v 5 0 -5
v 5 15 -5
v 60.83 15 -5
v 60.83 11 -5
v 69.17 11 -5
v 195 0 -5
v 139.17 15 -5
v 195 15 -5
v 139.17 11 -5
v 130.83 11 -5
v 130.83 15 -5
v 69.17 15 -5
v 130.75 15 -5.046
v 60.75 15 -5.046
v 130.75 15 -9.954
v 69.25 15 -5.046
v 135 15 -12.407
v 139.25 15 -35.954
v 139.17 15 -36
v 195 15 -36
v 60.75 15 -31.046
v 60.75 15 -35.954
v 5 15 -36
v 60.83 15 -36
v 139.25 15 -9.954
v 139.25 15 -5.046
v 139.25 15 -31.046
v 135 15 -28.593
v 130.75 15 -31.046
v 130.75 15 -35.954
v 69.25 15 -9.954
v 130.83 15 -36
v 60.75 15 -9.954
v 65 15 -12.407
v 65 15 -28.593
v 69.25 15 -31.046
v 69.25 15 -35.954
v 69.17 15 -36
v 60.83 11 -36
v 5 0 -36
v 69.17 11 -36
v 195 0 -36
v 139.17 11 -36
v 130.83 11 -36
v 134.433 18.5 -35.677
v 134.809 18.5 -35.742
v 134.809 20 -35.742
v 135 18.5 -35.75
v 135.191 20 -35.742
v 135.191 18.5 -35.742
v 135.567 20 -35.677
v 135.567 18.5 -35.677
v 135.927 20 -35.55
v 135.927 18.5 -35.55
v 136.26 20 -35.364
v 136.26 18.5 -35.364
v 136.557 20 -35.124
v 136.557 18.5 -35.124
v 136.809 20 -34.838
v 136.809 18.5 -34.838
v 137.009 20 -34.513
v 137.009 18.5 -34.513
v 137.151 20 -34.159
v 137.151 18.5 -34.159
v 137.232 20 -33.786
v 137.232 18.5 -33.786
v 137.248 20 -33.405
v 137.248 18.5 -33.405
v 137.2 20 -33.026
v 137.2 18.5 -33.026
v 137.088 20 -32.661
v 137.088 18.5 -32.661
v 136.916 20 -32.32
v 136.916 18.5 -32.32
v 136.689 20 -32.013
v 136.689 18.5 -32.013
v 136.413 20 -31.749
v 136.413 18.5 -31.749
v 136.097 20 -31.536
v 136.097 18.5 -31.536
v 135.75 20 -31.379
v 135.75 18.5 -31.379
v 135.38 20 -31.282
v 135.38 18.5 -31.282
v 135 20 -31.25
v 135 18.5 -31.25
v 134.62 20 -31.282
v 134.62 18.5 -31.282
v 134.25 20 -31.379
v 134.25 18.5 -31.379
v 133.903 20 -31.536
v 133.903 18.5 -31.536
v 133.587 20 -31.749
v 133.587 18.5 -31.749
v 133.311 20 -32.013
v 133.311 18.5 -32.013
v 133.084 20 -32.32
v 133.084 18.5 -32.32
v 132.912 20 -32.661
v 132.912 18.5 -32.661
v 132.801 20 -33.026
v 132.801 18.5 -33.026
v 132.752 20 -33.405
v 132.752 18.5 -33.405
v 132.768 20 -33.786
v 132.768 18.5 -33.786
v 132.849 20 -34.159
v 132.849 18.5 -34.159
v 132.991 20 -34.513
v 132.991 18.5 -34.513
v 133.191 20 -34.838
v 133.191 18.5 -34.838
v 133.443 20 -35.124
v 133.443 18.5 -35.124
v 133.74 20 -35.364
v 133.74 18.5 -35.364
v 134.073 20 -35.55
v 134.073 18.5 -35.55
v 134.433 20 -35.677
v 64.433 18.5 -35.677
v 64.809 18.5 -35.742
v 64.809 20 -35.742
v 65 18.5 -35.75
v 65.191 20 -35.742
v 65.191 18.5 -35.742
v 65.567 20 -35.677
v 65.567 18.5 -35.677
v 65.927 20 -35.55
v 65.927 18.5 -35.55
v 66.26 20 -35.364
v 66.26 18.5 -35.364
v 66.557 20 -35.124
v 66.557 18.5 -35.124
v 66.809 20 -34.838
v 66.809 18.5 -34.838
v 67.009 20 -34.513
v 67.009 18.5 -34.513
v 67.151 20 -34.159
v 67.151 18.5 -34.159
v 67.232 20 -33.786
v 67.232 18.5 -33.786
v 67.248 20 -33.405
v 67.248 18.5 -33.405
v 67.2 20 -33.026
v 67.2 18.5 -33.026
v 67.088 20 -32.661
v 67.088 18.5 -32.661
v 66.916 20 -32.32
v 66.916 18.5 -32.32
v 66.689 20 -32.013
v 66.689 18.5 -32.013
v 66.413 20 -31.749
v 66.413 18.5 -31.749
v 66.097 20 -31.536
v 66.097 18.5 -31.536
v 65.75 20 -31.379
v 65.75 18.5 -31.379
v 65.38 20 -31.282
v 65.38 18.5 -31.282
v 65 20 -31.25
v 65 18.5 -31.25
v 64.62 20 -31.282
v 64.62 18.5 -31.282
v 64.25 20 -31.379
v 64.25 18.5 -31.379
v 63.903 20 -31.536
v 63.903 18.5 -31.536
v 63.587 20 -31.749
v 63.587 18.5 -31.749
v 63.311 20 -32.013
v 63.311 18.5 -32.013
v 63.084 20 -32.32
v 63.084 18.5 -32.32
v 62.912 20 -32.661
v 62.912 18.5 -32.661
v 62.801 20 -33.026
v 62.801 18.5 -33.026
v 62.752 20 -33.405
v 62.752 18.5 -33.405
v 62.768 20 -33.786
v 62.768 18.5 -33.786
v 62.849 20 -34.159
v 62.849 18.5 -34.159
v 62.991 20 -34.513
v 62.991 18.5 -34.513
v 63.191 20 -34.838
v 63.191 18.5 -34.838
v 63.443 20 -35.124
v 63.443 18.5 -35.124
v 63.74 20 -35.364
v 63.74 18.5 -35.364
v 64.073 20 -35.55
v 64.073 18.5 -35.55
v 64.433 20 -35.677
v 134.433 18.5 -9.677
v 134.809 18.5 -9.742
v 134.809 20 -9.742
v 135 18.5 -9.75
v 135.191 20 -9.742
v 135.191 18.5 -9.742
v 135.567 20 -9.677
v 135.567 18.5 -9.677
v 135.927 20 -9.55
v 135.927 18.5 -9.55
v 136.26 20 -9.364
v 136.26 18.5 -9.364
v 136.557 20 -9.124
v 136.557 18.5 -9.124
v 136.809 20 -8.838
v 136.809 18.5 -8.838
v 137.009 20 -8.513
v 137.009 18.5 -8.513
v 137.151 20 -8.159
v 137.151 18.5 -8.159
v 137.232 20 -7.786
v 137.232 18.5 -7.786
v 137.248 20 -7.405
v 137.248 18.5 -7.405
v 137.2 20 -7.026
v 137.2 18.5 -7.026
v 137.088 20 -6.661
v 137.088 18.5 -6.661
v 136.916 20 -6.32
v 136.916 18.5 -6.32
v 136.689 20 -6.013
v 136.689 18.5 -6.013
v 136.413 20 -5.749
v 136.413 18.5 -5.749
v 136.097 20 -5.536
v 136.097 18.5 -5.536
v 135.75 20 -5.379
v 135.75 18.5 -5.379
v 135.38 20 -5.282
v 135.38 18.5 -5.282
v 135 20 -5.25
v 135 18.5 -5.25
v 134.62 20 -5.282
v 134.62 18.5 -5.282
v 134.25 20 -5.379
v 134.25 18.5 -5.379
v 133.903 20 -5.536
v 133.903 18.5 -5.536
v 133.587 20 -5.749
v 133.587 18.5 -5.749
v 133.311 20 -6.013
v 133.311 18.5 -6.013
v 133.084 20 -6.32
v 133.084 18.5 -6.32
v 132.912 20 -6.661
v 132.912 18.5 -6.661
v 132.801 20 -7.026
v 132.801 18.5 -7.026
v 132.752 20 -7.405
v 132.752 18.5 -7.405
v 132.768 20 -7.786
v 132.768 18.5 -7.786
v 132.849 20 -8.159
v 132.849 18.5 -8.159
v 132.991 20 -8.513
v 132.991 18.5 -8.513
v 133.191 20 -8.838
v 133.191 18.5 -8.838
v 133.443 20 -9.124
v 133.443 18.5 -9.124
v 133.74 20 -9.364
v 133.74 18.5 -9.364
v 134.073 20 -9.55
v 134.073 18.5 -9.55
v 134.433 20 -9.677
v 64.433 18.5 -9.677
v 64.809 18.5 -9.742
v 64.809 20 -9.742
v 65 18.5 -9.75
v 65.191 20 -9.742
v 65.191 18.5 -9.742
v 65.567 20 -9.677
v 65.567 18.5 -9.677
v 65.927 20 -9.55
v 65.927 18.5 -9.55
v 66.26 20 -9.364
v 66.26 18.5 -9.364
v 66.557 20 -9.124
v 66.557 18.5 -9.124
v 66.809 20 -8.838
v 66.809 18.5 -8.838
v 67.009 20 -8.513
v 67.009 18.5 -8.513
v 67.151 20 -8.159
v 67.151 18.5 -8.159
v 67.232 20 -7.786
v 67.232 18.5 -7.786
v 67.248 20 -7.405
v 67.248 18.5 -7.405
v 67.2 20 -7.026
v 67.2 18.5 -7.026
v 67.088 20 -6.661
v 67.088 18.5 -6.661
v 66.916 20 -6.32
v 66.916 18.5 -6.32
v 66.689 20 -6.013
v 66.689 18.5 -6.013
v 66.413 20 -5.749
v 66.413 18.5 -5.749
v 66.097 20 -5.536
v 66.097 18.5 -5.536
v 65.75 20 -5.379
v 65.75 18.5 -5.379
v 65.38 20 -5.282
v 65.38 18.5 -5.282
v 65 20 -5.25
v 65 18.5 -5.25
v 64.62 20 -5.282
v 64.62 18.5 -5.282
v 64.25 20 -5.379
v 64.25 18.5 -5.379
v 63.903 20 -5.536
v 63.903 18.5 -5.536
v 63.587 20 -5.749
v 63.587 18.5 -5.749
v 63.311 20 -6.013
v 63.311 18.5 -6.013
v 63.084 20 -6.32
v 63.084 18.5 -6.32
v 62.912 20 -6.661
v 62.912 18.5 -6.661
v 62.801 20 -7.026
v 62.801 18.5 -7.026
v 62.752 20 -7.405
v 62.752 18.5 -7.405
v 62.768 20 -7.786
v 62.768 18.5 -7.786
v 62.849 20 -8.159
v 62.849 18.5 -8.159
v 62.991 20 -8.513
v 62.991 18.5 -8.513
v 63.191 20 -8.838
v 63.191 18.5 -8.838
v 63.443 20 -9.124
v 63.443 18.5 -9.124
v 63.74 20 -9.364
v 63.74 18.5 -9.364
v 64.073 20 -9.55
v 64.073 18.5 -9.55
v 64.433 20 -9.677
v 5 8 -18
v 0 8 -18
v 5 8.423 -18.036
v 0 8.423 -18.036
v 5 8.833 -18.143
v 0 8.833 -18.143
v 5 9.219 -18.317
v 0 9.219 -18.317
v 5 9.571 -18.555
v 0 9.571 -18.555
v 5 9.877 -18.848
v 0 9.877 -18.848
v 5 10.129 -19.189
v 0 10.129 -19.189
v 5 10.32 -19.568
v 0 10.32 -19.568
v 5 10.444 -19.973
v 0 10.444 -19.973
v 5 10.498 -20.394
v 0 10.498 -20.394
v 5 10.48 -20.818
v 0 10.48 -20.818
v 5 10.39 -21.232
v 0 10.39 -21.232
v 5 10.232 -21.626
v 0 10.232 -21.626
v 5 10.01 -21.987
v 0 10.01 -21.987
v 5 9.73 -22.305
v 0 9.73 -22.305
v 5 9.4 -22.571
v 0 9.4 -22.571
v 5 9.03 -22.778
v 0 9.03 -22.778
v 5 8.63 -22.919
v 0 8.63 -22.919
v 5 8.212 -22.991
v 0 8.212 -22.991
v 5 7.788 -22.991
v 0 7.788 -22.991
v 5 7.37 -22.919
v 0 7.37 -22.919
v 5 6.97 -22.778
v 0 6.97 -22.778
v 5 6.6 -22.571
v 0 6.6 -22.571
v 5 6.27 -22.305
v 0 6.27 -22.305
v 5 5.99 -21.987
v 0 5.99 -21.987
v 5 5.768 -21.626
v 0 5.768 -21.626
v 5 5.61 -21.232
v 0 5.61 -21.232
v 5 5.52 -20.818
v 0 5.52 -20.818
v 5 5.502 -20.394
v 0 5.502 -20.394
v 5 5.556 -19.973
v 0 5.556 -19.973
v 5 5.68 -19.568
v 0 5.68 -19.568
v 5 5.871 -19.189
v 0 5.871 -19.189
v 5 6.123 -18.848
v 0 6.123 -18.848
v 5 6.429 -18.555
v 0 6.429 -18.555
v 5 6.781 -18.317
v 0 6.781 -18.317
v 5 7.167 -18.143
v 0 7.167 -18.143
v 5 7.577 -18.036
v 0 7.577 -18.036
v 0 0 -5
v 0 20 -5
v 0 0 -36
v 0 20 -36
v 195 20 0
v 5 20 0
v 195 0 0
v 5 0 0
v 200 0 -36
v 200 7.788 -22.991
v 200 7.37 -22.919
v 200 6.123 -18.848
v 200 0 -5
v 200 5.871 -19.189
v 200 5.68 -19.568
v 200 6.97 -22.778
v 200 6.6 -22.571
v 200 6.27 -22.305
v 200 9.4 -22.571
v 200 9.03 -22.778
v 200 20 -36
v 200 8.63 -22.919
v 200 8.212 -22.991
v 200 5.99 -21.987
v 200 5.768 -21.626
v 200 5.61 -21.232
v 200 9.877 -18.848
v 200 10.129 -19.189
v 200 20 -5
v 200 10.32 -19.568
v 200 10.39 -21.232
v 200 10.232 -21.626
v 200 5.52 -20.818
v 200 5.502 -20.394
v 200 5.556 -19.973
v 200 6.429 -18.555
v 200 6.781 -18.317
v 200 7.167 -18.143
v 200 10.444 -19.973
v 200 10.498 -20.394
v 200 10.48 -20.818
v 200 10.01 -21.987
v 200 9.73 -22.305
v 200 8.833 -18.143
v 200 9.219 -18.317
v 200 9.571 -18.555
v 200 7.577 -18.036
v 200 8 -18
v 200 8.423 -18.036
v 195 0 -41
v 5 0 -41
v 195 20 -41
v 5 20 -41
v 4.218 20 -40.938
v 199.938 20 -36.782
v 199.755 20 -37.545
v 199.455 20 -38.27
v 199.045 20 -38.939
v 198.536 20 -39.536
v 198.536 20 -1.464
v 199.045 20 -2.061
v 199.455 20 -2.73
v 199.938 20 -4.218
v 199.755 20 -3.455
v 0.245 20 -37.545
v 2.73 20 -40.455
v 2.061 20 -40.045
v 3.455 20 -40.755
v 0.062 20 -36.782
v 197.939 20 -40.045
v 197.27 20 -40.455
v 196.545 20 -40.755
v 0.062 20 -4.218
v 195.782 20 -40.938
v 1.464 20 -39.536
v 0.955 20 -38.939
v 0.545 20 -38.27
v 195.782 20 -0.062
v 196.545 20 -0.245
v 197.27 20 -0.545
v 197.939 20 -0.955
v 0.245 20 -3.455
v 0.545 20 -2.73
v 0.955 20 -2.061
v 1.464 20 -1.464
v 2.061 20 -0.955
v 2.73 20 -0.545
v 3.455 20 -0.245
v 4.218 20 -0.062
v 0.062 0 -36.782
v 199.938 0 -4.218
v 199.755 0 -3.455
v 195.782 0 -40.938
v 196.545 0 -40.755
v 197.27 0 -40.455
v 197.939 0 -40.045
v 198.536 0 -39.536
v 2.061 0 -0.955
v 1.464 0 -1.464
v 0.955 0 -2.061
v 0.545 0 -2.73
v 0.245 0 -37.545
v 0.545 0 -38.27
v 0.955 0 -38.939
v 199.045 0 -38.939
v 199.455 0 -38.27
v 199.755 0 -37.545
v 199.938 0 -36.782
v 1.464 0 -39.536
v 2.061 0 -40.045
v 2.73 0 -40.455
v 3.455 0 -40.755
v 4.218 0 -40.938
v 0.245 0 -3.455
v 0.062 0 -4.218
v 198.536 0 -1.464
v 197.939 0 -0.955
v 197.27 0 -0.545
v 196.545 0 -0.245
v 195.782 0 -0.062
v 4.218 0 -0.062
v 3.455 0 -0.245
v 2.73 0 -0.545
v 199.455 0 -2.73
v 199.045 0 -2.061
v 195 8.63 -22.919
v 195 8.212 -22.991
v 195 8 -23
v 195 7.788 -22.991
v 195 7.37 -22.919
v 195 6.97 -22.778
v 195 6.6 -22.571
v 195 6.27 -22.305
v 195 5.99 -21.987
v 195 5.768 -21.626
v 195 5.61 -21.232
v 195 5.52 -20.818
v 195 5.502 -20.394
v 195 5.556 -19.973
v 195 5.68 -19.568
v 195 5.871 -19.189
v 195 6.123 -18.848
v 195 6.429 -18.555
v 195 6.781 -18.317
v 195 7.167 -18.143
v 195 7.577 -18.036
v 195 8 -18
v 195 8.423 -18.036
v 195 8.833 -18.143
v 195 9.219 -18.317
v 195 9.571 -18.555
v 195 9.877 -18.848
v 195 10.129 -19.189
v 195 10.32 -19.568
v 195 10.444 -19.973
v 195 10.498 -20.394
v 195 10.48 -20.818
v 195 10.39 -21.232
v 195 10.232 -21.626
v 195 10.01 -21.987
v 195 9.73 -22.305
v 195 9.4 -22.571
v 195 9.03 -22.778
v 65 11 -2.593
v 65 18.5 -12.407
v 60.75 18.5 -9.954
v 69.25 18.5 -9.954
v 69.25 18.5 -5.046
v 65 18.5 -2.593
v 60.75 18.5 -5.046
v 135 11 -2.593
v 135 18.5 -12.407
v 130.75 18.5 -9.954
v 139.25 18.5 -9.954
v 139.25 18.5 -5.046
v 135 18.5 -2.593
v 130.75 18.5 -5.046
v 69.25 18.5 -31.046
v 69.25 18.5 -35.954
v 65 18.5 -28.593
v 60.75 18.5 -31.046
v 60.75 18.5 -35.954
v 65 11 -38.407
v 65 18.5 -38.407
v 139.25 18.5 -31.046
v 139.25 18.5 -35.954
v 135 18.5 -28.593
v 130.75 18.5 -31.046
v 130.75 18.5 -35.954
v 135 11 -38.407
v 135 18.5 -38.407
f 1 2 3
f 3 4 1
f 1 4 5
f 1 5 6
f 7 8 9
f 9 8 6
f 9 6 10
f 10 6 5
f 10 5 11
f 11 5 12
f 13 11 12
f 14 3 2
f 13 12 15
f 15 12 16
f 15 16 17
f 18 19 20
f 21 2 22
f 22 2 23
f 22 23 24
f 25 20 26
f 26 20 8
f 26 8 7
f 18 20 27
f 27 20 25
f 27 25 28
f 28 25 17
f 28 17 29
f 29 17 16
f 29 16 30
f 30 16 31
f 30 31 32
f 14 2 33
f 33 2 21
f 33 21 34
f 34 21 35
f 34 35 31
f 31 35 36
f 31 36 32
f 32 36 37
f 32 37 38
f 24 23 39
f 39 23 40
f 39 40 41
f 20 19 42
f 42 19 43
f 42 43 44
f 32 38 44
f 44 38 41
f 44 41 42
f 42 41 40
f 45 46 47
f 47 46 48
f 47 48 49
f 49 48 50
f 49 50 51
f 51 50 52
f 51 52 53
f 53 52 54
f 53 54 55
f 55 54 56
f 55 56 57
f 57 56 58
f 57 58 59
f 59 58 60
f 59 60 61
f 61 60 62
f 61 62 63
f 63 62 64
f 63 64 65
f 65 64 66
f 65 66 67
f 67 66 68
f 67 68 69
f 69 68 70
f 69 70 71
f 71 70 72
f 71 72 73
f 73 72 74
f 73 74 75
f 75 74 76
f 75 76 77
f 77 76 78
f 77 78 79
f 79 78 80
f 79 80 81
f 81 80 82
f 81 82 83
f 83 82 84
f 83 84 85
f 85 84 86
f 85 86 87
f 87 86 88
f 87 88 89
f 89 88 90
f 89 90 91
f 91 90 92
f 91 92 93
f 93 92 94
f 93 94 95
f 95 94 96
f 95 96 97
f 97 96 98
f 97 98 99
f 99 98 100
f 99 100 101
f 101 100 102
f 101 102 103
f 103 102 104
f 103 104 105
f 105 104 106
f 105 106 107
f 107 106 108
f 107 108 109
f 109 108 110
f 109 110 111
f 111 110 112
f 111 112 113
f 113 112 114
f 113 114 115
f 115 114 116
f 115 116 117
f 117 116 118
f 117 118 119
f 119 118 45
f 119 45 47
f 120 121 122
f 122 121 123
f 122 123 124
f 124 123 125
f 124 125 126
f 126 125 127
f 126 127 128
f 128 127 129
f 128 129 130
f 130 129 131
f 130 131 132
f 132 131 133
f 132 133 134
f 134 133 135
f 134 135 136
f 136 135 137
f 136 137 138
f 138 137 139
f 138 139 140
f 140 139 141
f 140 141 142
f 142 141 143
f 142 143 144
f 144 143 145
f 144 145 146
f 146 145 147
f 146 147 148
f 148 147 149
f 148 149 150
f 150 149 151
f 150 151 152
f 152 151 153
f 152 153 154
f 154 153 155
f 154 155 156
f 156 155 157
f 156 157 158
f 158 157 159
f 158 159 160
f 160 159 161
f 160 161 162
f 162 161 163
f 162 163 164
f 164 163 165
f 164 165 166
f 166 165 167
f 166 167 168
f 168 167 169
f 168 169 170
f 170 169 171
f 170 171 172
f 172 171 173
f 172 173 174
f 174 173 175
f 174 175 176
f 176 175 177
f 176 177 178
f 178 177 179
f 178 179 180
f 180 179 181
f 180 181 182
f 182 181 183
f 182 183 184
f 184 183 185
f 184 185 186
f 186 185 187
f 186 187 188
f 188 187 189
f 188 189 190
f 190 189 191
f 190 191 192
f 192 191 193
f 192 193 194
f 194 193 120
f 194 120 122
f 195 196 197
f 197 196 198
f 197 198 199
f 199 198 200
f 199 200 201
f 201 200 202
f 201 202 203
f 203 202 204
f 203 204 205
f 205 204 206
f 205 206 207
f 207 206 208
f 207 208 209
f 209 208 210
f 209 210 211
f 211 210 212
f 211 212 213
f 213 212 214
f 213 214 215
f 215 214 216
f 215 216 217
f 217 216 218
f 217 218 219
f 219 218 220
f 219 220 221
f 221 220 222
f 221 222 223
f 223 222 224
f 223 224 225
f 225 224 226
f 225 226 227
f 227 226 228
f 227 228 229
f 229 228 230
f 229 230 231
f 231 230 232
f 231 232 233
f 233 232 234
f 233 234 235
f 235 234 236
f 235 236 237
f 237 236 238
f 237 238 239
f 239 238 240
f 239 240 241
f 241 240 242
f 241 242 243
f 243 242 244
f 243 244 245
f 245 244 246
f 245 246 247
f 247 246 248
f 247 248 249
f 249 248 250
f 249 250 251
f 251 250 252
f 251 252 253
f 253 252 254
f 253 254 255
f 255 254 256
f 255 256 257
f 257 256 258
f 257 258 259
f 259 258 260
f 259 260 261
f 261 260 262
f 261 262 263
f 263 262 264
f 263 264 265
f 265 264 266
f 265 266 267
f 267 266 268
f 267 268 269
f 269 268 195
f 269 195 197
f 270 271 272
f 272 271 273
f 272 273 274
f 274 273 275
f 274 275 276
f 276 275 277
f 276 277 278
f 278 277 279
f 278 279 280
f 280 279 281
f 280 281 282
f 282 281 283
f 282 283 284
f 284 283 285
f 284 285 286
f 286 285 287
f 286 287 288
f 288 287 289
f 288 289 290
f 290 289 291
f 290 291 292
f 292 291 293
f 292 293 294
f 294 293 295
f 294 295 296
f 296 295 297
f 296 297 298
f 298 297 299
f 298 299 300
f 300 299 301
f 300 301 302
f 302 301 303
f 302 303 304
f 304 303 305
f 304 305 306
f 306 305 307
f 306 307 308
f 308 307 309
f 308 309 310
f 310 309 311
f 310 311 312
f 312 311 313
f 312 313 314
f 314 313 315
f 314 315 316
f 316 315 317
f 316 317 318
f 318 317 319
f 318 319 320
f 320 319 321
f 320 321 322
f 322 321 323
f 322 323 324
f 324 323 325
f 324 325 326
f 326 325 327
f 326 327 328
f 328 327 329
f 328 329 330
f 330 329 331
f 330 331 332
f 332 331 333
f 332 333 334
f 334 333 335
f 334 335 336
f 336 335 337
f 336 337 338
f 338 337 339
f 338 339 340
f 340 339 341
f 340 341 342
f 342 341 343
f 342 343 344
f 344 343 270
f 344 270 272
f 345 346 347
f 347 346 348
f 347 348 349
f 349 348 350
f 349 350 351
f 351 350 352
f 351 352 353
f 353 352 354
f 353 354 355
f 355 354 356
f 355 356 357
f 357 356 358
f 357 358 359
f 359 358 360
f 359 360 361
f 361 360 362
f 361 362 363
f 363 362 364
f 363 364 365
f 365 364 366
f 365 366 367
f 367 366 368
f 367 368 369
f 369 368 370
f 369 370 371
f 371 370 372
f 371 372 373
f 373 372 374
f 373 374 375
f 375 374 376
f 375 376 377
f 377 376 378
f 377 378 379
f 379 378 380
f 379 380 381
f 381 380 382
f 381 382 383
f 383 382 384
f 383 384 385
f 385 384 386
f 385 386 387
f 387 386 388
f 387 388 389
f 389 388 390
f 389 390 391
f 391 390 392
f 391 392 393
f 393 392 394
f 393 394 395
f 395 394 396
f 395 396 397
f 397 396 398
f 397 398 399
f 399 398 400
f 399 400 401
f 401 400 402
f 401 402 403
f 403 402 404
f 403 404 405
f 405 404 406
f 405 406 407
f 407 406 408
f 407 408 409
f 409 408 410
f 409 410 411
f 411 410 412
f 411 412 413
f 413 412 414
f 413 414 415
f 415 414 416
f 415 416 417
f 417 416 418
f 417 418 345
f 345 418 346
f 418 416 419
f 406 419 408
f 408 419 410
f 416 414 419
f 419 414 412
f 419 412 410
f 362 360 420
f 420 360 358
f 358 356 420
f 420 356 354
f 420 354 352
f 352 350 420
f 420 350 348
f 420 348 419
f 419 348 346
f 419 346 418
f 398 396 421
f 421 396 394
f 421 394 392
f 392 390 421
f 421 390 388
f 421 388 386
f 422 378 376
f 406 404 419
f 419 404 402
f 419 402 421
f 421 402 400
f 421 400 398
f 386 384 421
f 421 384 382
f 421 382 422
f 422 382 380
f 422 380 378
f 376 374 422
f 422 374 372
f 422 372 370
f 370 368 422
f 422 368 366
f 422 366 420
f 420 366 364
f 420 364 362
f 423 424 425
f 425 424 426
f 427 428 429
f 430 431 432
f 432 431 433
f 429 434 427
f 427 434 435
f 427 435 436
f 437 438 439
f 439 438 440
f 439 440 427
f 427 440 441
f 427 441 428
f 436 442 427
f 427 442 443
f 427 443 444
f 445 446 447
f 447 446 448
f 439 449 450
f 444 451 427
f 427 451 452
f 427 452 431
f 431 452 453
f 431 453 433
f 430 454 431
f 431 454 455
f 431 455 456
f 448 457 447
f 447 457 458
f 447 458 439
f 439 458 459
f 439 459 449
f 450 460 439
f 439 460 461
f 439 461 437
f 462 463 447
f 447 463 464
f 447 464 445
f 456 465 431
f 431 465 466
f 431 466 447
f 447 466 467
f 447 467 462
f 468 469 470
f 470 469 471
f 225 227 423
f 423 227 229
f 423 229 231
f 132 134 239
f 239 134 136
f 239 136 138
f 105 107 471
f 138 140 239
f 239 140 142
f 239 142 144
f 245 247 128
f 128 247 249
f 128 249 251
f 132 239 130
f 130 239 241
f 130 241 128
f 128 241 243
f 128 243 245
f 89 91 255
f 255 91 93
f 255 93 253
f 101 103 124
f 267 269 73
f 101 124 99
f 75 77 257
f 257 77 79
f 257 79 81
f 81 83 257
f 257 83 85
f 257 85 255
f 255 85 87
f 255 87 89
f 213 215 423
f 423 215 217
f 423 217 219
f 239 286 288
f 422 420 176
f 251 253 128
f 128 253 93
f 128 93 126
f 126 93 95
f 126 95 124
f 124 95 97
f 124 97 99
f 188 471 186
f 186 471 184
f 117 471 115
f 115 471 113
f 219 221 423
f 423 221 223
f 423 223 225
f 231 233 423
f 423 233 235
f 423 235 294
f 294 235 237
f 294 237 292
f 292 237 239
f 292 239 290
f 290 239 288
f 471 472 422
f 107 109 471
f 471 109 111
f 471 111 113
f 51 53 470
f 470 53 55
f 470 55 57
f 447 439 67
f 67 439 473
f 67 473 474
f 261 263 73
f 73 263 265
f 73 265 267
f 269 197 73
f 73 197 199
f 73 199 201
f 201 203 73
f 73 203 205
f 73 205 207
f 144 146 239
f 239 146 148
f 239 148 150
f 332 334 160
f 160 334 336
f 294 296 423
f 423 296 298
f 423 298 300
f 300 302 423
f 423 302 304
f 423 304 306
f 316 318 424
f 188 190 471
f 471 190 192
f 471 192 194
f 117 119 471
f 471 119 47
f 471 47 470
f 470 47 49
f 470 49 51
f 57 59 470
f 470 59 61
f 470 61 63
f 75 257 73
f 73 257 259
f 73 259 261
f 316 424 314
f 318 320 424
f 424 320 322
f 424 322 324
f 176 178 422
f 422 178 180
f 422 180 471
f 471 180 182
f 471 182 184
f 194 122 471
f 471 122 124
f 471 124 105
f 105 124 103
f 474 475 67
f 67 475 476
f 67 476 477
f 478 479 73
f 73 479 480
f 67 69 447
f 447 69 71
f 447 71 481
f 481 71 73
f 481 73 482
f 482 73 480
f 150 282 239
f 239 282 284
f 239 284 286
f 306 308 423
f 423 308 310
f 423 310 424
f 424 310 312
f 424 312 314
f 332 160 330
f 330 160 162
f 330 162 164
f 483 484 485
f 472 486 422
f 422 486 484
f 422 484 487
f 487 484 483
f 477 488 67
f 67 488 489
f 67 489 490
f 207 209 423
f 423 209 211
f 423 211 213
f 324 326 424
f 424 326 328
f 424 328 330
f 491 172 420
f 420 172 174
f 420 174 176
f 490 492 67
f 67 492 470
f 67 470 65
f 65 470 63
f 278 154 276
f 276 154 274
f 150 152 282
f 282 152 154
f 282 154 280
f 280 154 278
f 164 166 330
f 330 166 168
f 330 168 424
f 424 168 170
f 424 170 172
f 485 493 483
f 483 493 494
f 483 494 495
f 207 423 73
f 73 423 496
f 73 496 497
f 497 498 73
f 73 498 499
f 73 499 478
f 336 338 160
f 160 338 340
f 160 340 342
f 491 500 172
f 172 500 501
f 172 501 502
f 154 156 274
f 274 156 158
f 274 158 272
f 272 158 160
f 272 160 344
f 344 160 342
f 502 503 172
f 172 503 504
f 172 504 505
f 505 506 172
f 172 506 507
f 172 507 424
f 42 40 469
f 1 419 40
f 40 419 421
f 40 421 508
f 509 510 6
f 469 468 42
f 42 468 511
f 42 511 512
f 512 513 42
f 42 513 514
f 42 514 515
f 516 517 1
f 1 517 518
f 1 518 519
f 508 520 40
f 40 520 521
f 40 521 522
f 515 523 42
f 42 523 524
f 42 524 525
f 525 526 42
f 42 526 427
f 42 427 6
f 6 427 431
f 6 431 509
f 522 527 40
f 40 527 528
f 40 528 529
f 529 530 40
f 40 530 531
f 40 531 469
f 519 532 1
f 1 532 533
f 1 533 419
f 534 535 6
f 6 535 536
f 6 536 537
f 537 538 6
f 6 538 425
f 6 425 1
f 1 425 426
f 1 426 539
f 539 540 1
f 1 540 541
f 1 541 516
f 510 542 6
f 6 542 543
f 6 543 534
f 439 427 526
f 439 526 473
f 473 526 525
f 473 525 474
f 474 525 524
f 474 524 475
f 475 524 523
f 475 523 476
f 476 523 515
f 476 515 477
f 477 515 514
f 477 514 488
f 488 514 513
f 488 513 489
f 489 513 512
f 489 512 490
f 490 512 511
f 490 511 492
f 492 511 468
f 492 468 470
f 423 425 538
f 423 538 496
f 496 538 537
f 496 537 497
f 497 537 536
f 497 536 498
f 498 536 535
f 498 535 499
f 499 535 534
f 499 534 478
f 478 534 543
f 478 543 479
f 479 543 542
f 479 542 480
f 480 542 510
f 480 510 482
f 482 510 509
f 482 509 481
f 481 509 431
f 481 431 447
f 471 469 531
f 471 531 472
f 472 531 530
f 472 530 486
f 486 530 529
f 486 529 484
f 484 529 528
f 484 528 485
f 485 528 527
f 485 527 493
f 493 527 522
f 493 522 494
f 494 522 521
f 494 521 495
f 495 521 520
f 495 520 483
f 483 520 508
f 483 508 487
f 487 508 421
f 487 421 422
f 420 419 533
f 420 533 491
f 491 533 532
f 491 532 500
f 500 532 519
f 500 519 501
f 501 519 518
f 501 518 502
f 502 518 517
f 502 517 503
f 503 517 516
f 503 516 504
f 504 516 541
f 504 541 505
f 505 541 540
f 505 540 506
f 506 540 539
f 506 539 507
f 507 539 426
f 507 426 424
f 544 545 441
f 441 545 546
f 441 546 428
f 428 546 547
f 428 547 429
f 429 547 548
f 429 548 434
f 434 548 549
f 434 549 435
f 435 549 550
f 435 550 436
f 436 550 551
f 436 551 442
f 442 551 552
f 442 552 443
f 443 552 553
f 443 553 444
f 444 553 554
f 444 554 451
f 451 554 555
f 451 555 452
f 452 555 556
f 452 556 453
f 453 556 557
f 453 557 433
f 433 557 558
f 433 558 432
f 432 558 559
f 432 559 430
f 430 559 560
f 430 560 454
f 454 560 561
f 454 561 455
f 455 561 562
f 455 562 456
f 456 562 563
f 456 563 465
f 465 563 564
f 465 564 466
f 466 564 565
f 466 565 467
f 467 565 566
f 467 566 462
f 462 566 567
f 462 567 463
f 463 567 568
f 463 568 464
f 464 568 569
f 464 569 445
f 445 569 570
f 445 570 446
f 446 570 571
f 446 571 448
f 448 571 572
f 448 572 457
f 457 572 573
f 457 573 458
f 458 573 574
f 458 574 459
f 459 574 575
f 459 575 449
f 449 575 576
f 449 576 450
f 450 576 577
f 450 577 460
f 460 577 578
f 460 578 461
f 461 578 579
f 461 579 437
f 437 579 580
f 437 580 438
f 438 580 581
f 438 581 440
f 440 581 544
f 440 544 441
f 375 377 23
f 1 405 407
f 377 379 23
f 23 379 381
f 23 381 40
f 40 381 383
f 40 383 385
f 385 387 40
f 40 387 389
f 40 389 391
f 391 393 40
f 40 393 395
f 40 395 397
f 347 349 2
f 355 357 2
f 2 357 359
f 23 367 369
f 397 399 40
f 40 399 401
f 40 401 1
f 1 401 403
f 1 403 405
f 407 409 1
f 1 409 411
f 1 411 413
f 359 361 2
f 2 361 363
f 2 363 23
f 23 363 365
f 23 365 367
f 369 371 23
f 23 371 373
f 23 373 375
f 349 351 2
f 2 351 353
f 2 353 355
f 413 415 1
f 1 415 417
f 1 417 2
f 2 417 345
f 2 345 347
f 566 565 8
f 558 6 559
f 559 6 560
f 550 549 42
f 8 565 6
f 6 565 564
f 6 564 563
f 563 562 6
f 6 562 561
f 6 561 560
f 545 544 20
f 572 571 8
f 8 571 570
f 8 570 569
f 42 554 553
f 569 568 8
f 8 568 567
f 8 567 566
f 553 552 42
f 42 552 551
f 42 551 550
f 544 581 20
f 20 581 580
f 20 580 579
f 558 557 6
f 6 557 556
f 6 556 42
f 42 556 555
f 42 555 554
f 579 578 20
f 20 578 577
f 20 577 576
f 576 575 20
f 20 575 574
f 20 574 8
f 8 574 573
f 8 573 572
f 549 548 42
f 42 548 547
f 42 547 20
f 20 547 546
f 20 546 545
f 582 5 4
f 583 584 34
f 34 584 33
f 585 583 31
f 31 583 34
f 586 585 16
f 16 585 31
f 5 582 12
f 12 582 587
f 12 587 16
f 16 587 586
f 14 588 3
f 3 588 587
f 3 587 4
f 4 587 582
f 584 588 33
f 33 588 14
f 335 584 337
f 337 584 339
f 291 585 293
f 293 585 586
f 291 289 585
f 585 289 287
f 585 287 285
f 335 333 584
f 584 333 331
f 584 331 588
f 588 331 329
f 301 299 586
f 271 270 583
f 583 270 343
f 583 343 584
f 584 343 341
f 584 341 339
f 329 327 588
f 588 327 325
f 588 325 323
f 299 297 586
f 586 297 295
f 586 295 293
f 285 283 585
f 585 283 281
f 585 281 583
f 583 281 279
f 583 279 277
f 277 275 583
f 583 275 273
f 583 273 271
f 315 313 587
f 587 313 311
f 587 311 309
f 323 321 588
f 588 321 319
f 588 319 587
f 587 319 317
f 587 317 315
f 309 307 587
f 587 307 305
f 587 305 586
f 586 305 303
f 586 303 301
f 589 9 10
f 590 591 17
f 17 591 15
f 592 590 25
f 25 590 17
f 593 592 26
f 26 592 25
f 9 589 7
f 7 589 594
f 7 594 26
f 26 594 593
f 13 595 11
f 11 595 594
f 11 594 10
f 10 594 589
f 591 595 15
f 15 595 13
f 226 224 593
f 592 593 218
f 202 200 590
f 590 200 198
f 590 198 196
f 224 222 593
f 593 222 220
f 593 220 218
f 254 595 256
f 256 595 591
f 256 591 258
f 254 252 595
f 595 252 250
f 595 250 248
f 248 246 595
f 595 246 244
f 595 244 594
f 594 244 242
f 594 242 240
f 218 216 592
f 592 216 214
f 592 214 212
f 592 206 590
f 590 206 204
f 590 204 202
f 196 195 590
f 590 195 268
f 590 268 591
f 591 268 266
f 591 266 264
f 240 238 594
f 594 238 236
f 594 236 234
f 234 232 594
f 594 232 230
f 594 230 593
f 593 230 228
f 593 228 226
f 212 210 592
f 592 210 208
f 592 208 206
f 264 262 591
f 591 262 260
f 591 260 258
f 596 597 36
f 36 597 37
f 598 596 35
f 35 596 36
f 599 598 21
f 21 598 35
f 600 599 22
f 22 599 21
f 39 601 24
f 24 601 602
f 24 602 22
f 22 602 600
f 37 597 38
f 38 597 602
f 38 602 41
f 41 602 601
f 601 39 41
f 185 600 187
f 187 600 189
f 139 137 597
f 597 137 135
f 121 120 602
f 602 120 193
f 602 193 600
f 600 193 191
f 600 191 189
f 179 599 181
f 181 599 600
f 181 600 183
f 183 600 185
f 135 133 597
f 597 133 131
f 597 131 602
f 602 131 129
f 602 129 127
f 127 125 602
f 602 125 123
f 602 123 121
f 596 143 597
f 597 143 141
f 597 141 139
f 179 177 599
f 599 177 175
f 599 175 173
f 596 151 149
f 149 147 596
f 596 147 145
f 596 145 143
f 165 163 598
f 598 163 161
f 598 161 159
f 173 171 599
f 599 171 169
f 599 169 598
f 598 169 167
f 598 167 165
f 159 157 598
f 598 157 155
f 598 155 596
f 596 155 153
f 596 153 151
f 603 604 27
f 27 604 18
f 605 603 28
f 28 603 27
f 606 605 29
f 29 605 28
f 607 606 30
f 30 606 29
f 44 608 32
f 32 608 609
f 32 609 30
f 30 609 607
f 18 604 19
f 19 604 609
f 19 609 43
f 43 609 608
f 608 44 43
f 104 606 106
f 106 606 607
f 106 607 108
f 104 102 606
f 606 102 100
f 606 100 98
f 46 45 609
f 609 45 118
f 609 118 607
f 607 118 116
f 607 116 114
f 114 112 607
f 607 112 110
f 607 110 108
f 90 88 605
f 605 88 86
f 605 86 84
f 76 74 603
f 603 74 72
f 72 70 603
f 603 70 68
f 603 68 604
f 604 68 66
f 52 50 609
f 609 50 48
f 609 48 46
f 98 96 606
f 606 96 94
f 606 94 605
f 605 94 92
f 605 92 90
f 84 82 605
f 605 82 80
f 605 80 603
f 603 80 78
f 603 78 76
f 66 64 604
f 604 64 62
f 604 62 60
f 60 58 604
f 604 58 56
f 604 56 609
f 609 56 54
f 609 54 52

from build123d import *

# Parameters (mm, degrees)
SKETCH1_W                = 200
SKETCH1_H                = 41
BOSS_EXTRUDE1_DEPTH      = 20
FILLET1_R                = 5
SKETCH4_R                = 2.5
CUT_EXTRUDE1_DEPTH       = 206.136539895
SKETCH5_W                = 190
SKETCH5_H                = 31
CUT_EXTRUDE2_DEPTH       = 15
M4_CLEARANCE_HOLE1_D     = 4.5
M4_CLEARANCE_HOLE1_DEPTH = 8
M4_CLEARANCE_HOLE1_TIP   = 1.351936393
CUT_EXTRUDE3_START       = -3.5
CUT_EXTRUDE3_DEPTH       = 7.5
LPATTERN1_COUNT          = 2
LPATTERN1_PITCH          = 70
LPATTERN1_COUNT_DIR2     = 2
LPATTERN1_PITCH_DIR2     = 26


with BuildPart() as part:
    # Sketch1 → Boss-Extrude1 (new body)
    with BuildSketch(Plane(origin=(0, 0, 0), x_dir=(1, 0, 0), z_dir=(0, 1, 0))):
        with Locations((100, 20.5)):
            Rectangle(SKETCH1_W, SKETCH1_H)
    extrude(amount=BOSS_EXTRUDE1_DEPTH)

    # Fillet1
    fillet1_edges = [part.edges().sort_by_distance(p)[0] for p in [
        (0, 10, -41),
        (200, 10, -41),
        (200, 10, 0),
        (0, 10, 0),
    ]]
    fillet(fillet1_edges, radius=FILLET1_R)

    # Sketch4 → Cut-Extrude1 (cut, through all)
    with BuildSketch(Plane.ZY):
        with Locations((-20.5, 8)):
            Circle(SKETCH4_R)
    extrude(amount=-CUT_EXTRUDE1_DEPTH, mode=Mode.SUBTRACT)

    # Sketch5 → Cut-Extrude2 (cut)
    with BuildSketch(Plane.XZ):
        with Locations((100, -20.5)):
            Rectangle(SKETCH5_W, SKETCH5_H)
    extrude(amount=-CUT_EXTRUDE2_DEPTH, mode=Mode.SUBTRACT)

    # M4 Clearance Hole1
    with Locations(Plane(origin=(135, 20, -7.5), x_dir=(0, 0, 1), z_dir=(0, 1, 0))):
        with Locations((0, 0), (-26, -70), (-26, 0), (0, -70)):
            Hole(M4_CLEARANCE_HOLE1_D / 2, depth=M4_CLEARANCE_HOLE1_DEPTH)
            with Locations((0, 0, -(M4_CLEARANCE_HOLE1_DEPTH + M4_CLEARANCE_HOLE1_TIP / 2))):  # 118° drill point
                Cone(0, M4_CLEARANCE_HOLE1_D / 2, M4_CLEARANCE_HOLE1_TIP, mode=Mode.SUBTRACT)

    # Sketch7 → Cut-Extrude3 (cut)
    with BuildSketch(Plane.XZ.offset(-15).offset(CUT_EXTRUDE3_START)):
        Polygon((65, -12.407477288), (69.25, -9.953738644), (69.25, -5.046261356), (65, -2.592522712), (60.75, -5.046261356), (60.75, -9.953738644), align=None)
    cut_extrude3 = extrude(amount=CUT_EXTRUDE3_DEPTH, mode=Mode.SUBTRACT)

    # LPattern1: Cut-Extrude3 2 × 2
    with Locations(*[(i * LPATTERN1_PITCH, 0, -j * LPATTERN1_PITCH_DIR2) for i in range(LPATTERN1_COUNT) for j in range(LPATTERN1_COUNT_DIR2) if (i, j) != (0, 0)]):
        add(cut_extrude3, mode=Mode.SUBTRACT)


solid = part.part
